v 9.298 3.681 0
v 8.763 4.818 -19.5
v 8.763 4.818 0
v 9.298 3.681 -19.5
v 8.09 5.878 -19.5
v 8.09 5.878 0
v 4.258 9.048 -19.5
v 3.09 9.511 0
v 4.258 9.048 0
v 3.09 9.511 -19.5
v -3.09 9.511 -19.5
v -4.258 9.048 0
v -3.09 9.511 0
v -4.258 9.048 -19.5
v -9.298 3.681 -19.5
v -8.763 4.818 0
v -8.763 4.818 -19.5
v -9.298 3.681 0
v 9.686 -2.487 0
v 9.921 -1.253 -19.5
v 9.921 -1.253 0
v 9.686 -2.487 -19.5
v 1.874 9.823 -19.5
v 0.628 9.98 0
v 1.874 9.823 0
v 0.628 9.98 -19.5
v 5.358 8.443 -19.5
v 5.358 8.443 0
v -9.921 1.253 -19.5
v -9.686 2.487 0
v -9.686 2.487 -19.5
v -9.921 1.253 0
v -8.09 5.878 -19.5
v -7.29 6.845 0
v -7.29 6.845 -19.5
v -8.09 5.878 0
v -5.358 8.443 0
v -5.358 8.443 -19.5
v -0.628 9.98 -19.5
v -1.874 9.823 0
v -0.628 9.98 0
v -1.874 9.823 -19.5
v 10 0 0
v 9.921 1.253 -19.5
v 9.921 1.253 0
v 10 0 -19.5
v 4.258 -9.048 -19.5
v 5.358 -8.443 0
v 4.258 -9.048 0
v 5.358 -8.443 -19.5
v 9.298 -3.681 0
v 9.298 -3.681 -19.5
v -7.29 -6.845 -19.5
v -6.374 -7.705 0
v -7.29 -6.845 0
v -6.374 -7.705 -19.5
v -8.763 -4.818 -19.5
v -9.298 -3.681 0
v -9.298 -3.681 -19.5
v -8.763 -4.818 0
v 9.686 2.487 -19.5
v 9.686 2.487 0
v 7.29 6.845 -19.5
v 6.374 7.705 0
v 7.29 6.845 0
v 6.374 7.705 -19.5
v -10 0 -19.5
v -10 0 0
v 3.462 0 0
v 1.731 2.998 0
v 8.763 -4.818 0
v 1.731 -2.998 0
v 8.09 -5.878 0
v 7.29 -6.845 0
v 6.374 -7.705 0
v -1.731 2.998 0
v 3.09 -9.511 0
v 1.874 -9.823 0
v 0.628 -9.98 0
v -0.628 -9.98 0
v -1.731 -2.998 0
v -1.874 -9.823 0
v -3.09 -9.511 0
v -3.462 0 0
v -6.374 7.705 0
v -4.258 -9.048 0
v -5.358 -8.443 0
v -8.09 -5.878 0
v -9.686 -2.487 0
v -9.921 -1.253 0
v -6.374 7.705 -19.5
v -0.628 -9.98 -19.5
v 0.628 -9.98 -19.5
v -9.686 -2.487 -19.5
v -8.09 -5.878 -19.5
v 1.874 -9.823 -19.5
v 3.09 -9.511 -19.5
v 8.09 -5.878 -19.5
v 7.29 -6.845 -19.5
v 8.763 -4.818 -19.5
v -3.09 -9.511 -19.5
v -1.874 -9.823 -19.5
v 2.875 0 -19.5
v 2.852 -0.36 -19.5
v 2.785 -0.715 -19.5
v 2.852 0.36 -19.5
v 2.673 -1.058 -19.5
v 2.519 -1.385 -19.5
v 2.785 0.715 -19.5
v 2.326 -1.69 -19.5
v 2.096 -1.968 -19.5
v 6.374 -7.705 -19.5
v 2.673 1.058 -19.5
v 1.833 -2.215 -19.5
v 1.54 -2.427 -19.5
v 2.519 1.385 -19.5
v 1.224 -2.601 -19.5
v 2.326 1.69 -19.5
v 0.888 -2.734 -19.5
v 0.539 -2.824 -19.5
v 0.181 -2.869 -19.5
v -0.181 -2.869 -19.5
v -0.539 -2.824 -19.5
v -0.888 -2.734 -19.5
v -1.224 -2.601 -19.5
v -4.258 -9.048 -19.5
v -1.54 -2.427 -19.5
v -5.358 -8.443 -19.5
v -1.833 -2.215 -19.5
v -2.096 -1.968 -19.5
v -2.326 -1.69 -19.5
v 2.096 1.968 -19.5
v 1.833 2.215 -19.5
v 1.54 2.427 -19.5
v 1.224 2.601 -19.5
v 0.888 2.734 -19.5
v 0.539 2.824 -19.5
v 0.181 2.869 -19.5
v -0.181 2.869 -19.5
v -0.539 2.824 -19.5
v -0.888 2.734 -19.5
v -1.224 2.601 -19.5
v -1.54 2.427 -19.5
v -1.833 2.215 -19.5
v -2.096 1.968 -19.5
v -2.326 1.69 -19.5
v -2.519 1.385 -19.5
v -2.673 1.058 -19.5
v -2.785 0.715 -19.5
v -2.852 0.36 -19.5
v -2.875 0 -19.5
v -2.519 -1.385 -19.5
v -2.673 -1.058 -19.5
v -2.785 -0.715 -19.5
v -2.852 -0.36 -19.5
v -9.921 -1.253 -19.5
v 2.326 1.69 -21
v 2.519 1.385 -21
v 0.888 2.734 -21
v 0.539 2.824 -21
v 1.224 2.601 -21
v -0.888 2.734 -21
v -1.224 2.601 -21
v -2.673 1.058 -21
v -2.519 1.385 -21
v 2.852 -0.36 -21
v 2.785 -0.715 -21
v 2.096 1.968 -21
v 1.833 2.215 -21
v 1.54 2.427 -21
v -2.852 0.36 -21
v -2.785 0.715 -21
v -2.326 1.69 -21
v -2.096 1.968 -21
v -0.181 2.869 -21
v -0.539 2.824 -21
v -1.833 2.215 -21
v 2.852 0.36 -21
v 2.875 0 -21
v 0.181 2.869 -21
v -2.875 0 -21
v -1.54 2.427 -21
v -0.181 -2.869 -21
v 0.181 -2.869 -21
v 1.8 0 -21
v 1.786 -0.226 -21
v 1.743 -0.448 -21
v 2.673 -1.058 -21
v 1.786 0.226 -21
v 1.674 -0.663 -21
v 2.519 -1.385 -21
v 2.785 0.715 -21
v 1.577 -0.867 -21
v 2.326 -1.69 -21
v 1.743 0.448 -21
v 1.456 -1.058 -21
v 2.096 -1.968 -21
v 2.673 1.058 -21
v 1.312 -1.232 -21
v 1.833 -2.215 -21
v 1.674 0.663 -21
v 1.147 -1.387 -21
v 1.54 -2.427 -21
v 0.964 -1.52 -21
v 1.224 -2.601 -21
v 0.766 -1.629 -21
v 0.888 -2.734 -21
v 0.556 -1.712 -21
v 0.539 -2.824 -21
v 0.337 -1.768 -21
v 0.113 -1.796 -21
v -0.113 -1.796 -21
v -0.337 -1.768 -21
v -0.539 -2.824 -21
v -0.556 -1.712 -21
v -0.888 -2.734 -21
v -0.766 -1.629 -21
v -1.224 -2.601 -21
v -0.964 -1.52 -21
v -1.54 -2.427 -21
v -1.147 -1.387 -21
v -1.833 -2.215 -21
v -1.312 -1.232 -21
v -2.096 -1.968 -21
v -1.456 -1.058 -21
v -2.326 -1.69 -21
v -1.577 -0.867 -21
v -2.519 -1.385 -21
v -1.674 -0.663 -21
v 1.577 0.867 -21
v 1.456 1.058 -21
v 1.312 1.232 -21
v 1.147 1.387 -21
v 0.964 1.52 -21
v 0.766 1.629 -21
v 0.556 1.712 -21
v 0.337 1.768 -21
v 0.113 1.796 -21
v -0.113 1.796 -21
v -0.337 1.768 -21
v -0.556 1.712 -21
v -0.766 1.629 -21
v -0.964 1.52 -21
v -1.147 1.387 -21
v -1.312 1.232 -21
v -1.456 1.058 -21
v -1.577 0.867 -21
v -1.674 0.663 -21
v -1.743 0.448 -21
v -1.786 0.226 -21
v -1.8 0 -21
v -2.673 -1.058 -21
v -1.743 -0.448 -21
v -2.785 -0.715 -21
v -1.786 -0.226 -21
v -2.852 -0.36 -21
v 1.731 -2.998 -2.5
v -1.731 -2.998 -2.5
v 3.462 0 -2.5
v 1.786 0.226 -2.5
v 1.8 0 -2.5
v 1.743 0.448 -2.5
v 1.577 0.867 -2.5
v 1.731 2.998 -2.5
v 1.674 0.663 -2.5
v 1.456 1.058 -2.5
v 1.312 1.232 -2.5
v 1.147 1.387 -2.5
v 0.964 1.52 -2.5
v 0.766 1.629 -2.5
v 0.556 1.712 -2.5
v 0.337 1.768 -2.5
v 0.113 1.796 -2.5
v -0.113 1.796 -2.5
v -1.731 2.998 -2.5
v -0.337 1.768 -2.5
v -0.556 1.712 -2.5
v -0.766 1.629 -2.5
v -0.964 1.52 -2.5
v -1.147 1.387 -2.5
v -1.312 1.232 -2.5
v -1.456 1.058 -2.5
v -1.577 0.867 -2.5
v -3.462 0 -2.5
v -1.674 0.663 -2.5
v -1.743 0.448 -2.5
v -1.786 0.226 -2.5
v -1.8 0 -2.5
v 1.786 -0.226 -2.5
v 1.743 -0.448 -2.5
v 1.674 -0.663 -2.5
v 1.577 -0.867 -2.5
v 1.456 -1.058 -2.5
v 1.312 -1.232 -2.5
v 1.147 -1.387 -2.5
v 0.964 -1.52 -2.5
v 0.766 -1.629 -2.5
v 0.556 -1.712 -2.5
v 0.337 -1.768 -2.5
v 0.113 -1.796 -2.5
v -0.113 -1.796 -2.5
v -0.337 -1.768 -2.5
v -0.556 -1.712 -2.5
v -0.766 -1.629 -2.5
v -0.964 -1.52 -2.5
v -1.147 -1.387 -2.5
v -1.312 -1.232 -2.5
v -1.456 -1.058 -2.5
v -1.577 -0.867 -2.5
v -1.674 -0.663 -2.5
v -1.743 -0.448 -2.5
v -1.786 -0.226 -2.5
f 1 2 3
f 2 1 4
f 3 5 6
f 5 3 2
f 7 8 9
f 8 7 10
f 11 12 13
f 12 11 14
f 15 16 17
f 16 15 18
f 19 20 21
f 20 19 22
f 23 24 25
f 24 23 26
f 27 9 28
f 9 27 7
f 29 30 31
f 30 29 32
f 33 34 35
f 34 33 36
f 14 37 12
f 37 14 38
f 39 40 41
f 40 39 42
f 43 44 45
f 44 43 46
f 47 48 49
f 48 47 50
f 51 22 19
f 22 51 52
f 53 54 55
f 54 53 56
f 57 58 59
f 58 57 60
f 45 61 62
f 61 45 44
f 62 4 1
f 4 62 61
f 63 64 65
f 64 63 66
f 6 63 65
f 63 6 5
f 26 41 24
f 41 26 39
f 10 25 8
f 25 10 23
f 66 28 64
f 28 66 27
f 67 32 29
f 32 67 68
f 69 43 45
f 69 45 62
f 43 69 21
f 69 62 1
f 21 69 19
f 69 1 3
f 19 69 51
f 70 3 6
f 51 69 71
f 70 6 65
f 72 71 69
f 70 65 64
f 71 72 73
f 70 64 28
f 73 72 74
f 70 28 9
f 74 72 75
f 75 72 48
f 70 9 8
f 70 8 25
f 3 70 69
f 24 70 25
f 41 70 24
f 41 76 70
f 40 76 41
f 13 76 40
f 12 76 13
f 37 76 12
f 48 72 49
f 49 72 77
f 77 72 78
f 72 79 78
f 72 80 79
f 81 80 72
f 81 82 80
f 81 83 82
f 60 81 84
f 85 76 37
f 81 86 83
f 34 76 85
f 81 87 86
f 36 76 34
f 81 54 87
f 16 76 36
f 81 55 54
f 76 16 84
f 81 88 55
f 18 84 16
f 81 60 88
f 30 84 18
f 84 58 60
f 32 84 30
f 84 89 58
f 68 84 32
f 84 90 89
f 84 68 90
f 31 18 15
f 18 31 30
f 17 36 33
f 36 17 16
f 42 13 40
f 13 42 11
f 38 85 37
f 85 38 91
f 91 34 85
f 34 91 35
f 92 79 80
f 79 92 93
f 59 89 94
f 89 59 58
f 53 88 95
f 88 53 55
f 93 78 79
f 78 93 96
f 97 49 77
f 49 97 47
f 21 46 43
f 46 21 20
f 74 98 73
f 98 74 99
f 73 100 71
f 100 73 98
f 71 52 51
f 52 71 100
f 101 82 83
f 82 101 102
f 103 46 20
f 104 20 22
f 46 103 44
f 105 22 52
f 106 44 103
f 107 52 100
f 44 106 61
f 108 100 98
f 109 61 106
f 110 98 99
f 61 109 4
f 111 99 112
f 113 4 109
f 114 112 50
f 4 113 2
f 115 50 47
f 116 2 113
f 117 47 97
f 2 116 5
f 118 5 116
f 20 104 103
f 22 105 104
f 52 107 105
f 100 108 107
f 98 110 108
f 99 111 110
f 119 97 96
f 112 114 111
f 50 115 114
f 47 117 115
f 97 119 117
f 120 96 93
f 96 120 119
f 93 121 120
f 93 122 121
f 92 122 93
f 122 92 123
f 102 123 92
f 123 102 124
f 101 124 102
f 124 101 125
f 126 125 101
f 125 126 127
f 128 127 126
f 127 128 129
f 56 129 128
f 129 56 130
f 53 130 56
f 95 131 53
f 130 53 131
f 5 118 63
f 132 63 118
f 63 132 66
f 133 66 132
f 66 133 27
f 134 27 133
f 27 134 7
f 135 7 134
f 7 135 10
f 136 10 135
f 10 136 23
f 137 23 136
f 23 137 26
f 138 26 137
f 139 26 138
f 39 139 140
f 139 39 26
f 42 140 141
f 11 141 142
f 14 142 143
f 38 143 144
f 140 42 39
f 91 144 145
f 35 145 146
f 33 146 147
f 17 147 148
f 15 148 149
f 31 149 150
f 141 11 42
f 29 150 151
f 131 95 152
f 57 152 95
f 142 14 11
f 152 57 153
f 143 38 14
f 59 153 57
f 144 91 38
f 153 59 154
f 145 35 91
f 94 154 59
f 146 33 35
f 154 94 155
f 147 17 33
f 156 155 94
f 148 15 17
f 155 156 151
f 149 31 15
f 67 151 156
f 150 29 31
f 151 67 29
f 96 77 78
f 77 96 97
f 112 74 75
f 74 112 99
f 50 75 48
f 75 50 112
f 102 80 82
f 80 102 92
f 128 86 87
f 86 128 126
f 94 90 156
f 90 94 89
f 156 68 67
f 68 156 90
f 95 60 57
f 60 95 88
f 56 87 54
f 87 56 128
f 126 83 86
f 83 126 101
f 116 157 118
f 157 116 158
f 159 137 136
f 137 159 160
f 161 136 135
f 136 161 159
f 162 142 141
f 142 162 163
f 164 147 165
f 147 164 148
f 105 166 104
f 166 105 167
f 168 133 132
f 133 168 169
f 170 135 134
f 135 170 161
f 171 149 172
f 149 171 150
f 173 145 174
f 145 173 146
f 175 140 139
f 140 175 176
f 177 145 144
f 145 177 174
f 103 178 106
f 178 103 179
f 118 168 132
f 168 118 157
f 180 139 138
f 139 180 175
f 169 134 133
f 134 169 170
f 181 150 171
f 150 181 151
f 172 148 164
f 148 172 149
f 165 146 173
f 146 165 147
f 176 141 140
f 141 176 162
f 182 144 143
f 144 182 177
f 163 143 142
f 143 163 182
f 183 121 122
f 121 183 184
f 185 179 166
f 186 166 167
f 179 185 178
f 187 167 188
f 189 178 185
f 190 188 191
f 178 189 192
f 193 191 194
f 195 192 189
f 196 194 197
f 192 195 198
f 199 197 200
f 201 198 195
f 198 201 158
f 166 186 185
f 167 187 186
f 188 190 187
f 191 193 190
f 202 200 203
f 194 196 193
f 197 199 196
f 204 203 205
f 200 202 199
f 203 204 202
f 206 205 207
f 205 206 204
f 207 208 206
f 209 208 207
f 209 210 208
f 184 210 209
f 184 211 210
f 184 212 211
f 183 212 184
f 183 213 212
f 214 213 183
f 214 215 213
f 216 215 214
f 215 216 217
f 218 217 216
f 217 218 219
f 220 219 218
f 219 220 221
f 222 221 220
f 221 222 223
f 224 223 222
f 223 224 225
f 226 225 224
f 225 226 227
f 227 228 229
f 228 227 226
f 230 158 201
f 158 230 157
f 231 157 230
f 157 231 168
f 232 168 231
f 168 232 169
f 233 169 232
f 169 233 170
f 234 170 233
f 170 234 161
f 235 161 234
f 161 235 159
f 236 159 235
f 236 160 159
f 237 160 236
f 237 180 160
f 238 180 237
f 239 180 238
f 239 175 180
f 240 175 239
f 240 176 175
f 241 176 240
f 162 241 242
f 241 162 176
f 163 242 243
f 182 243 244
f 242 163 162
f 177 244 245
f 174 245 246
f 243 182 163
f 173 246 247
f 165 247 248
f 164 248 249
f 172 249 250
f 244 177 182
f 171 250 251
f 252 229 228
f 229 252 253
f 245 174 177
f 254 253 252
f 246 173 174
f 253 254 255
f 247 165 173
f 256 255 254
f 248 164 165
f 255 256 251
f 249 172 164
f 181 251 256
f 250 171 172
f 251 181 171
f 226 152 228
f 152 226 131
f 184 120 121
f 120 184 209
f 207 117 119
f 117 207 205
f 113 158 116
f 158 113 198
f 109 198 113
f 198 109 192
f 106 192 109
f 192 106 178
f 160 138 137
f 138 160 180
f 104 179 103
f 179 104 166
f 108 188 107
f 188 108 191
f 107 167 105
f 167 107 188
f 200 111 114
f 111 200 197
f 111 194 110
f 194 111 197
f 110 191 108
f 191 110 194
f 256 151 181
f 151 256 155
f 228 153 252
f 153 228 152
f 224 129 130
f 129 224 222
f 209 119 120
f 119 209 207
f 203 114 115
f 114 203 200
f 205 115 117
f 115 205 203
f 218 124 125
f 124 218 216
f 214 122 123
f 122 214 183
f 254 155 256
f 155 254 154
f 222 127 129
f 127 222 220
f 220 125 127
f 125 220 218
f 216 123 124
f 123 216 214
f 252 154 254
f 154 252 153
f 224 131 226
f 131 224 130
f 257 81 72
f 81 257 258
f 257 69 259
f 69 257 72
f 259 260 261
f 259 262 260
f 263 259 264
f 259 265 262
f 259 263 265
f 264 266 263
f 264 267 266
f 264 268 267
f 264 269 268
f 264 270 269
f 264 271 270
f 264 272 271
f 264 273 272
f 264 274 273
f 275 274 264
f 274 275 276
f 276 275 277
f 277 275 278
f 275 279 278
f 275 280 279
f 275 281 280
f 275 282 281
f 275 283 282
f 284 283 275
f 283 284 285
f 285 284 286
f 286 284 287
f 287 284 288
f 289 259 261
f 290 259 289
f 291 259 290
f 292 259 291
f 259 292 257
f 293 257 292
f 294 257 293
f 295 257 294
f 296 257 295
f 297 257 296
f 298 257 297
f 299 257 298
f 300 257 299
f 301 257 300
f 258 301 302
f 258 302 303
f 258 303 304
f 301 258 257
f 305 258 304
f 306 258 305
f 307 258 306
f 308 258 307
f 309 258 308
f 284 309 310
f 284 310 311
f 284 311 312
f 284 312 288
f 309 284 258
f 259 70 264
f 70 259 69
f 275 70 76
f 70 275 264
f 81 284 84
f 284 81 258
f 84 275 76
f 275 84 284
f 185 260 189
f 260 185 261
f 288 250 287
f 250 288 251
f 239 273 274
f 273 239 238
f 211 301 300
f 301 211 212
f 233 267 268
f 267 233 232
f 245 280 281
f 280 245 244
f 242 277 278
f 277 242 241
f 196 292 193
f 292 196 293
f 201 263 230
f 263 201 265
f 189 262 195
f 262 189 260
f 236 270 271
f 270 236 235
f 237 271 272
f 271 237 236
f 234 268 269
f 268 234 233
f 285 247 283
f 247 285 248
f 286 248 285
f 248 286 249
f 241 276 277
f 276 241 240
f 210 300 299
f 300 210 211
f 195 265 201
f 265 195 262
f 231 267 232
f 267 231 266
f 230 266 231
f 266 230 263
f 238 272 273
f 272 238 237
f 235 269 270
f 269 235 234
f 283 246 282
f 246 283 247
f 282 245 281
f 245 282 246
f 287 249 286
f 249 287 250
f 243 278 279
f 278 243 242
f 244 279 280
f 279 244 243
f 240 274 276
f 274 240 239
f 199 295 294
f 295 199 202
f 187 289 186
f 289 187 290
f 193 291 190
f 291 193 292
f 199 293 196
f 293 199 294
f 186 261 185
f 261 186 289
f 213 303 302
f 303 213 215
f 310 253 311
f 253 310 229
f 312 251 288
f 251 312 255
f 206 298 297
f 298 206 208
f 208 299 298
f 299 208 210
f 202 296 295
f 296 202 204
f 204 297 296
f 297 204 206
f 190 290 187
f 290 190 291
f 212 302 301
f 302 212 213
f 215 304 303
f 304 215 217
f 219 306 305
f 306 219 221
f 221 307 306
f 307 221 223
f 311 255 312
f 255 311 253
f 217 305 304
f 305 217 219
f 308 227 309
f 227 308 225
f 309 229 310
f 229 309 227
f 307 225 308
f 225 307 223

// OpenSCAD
$fn = 50;

difference() {
	union() {
		translate(v = [0, 0, -19.5]) {
			cylinder(h = 19.5, r = 10.0);
		}
		#translate(v = [0, 0, -21.0]) {
			cylinder(h = 21, r = 2.875);
		}
	}
	union() {
		translate(v = [0, 0, 0]) {
			rotate(a = [0, 0, 0]) {
				difference() {
					union() {
						translate(v = [0, 0, -2.5]) {
							linear_extrude(height = 2.5) {
								polygon(points = [[3.4619999999999997, 0.0], [1.7310000000000003, 2.9981799479017264], [-1.7309999999999992, 2.9981799479017264], [-3.4619999999999997, 4.2397272186481365e-16], [-1.7310000000000014, -2.998179947901726], [1.7309999999999977, -2.9981799479017277]]);
							}
						}
					}
					union();
				}
			}
		}
		#translate(v = [0, 0, -100.0]) {
			cylinder(h = 200, r = 1.8);
		}
	}
}
